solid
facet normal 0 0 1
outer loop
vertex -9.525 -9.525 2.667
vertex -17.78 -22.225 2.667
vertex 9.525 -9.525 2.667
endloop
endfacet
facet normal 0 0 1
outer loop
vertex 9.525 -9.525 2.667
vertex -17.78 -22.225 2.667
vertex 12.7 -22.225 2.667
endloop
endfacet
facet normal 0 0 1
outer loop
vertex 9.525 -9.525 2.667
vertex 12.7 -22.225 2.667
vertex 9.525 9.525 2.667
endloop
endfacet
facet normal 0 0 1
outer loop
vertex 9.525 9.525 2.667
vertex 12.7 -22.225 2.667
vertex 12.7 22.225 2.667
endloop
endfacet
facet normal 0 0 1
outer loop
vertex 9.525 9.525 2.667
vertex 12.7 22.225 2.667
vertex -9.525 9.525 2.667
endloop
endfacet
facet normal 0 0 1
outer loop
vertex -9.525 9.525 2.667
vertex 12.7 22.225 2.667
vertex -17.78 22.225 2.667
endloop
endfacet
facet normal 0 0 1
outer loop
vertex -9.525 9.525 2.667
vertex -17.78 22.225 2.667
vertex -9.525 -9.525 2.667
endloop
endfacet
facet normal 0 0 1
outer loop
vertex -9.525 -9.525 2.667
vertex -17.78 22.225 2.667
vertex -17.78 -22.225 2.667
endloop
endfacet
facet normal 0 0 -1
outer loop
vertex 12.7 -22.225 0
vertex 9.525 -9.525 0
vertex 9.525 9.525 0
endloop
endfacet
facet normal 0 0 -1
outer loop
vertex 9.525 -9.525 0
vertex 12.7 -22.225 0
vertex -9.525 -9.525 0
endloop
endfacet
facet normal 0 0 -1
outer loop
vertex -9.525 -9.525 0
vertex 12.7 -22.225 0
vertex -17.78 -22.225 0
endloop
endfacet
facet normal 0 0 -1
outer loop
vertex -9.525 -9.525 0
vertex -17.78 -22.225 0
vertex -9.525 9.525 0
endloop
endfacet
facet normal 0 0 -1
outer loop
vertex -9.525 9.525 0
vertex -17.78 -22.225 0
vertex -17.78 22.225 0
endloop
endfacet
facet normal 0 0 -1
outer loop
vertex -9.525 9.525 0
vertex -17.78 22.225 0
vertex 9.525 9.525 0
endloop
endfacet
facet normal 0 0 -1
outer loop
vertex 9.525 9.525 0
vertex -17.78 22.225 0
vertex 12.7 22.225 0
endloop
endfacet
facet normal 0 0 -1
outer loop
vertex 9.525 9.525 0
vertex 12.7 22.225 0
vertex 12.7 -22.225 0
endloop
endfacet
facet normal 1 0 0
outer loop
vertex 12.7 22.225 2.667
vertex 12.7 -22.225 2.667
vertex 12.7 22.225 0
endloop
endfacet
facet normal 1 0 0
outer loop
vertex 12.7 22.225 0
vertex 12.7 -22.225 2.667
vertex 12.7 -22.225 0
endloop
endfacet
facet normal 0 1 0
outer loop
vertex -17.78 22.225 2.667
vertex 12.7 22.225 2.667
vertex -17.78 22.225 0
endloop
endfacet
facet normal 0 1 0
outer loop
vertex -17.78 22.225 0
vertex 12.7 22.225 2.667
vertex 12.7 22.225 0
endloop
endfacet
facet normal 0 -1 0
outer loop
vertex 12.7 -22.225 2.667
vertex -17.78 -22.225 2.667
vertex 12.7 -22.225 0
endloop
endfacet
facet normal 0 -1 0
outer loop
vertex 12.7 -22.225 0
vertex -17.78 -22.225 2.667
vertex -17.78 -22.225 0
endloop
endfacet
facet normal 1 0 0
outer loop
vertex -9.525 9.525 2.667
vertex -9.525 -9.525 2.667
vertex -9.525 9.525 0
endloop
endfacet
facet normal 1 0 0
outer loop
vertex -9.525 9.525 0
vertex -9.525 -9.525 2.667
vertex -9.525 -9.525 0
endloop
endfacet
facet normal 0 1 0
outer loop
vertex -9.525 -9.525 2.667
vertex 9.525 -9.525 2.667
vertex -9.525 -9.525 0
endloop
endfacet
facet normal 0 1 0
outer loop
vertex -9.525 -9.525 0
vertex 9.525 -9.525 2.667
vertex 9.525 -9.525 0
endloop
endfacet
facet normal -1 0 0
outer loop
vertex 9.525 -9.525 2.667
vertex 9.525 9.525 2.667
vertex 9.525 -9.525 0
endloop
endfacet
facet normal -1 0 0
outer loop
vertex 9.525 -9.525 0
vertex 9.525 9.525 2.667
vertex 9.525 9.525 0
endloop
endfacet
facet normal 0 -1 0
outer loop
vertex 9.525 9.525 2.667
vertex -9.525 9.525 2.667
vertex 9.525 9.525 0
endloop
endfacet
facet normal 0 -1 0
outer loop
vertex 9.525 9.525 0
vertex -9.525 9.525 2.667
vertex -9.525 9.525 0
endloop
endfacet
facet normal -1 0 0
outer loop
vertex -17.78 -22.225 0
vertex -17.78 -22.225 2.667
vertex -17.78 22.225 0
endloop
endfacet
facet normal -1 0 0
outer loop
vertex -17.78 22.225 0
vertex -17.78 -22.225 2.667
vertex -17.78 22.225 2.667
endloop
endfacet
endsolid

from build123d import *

# Parameters (mm, degrees)
SKETCH1_W           = 25.4
SKETCH1_H           = 44.45
SKETCH1_W_2         = 19.05
SKETCH1_H_2         = 19.05
BOSS_EXTRUDE1_DEPTH = 3.175
SKETCH4_W           = 3.175
SKETCH4_H           = 44.45
BOSS_EXTRUDE3_DEPTH = 5.08
MOVE_FACE1_BY       = 0.508


with BuildPart() as part:
    # Sketch1 → Boss-Extrude1 (new body)
    with BuildSketch(Plane.XY):
        Rectangle(SKETCH1_W, SKETCH1_H)
        Rectangle(SKETCH1_W_2, SKETCH1_H_2, mode=Mode.SUBTRACT)
    extrude(amount=BOSS_EXTRUDE1_DEPTH)

    # Sketch4 → Boss-Extrude3 (add)
    with BuildSketch(Plane.ZY.offset(12.7)):
        with Locations((1.5875, 0)):
            Rectangle(SKETCH4_W, SKETCH4_H)
    extrude(amount=BOSS_EXTRUDE3_DEPTH)

    # Move Face1: a face moved inward by 0.508
    extrude(part.faces().sort_by_distance((-2.54, -11.1125, 3.175))[0], amount=MOVE_FACE1_BY, dir=(0, 0, -1), mode=Mode.SUBTRACT)


solid = part.part
